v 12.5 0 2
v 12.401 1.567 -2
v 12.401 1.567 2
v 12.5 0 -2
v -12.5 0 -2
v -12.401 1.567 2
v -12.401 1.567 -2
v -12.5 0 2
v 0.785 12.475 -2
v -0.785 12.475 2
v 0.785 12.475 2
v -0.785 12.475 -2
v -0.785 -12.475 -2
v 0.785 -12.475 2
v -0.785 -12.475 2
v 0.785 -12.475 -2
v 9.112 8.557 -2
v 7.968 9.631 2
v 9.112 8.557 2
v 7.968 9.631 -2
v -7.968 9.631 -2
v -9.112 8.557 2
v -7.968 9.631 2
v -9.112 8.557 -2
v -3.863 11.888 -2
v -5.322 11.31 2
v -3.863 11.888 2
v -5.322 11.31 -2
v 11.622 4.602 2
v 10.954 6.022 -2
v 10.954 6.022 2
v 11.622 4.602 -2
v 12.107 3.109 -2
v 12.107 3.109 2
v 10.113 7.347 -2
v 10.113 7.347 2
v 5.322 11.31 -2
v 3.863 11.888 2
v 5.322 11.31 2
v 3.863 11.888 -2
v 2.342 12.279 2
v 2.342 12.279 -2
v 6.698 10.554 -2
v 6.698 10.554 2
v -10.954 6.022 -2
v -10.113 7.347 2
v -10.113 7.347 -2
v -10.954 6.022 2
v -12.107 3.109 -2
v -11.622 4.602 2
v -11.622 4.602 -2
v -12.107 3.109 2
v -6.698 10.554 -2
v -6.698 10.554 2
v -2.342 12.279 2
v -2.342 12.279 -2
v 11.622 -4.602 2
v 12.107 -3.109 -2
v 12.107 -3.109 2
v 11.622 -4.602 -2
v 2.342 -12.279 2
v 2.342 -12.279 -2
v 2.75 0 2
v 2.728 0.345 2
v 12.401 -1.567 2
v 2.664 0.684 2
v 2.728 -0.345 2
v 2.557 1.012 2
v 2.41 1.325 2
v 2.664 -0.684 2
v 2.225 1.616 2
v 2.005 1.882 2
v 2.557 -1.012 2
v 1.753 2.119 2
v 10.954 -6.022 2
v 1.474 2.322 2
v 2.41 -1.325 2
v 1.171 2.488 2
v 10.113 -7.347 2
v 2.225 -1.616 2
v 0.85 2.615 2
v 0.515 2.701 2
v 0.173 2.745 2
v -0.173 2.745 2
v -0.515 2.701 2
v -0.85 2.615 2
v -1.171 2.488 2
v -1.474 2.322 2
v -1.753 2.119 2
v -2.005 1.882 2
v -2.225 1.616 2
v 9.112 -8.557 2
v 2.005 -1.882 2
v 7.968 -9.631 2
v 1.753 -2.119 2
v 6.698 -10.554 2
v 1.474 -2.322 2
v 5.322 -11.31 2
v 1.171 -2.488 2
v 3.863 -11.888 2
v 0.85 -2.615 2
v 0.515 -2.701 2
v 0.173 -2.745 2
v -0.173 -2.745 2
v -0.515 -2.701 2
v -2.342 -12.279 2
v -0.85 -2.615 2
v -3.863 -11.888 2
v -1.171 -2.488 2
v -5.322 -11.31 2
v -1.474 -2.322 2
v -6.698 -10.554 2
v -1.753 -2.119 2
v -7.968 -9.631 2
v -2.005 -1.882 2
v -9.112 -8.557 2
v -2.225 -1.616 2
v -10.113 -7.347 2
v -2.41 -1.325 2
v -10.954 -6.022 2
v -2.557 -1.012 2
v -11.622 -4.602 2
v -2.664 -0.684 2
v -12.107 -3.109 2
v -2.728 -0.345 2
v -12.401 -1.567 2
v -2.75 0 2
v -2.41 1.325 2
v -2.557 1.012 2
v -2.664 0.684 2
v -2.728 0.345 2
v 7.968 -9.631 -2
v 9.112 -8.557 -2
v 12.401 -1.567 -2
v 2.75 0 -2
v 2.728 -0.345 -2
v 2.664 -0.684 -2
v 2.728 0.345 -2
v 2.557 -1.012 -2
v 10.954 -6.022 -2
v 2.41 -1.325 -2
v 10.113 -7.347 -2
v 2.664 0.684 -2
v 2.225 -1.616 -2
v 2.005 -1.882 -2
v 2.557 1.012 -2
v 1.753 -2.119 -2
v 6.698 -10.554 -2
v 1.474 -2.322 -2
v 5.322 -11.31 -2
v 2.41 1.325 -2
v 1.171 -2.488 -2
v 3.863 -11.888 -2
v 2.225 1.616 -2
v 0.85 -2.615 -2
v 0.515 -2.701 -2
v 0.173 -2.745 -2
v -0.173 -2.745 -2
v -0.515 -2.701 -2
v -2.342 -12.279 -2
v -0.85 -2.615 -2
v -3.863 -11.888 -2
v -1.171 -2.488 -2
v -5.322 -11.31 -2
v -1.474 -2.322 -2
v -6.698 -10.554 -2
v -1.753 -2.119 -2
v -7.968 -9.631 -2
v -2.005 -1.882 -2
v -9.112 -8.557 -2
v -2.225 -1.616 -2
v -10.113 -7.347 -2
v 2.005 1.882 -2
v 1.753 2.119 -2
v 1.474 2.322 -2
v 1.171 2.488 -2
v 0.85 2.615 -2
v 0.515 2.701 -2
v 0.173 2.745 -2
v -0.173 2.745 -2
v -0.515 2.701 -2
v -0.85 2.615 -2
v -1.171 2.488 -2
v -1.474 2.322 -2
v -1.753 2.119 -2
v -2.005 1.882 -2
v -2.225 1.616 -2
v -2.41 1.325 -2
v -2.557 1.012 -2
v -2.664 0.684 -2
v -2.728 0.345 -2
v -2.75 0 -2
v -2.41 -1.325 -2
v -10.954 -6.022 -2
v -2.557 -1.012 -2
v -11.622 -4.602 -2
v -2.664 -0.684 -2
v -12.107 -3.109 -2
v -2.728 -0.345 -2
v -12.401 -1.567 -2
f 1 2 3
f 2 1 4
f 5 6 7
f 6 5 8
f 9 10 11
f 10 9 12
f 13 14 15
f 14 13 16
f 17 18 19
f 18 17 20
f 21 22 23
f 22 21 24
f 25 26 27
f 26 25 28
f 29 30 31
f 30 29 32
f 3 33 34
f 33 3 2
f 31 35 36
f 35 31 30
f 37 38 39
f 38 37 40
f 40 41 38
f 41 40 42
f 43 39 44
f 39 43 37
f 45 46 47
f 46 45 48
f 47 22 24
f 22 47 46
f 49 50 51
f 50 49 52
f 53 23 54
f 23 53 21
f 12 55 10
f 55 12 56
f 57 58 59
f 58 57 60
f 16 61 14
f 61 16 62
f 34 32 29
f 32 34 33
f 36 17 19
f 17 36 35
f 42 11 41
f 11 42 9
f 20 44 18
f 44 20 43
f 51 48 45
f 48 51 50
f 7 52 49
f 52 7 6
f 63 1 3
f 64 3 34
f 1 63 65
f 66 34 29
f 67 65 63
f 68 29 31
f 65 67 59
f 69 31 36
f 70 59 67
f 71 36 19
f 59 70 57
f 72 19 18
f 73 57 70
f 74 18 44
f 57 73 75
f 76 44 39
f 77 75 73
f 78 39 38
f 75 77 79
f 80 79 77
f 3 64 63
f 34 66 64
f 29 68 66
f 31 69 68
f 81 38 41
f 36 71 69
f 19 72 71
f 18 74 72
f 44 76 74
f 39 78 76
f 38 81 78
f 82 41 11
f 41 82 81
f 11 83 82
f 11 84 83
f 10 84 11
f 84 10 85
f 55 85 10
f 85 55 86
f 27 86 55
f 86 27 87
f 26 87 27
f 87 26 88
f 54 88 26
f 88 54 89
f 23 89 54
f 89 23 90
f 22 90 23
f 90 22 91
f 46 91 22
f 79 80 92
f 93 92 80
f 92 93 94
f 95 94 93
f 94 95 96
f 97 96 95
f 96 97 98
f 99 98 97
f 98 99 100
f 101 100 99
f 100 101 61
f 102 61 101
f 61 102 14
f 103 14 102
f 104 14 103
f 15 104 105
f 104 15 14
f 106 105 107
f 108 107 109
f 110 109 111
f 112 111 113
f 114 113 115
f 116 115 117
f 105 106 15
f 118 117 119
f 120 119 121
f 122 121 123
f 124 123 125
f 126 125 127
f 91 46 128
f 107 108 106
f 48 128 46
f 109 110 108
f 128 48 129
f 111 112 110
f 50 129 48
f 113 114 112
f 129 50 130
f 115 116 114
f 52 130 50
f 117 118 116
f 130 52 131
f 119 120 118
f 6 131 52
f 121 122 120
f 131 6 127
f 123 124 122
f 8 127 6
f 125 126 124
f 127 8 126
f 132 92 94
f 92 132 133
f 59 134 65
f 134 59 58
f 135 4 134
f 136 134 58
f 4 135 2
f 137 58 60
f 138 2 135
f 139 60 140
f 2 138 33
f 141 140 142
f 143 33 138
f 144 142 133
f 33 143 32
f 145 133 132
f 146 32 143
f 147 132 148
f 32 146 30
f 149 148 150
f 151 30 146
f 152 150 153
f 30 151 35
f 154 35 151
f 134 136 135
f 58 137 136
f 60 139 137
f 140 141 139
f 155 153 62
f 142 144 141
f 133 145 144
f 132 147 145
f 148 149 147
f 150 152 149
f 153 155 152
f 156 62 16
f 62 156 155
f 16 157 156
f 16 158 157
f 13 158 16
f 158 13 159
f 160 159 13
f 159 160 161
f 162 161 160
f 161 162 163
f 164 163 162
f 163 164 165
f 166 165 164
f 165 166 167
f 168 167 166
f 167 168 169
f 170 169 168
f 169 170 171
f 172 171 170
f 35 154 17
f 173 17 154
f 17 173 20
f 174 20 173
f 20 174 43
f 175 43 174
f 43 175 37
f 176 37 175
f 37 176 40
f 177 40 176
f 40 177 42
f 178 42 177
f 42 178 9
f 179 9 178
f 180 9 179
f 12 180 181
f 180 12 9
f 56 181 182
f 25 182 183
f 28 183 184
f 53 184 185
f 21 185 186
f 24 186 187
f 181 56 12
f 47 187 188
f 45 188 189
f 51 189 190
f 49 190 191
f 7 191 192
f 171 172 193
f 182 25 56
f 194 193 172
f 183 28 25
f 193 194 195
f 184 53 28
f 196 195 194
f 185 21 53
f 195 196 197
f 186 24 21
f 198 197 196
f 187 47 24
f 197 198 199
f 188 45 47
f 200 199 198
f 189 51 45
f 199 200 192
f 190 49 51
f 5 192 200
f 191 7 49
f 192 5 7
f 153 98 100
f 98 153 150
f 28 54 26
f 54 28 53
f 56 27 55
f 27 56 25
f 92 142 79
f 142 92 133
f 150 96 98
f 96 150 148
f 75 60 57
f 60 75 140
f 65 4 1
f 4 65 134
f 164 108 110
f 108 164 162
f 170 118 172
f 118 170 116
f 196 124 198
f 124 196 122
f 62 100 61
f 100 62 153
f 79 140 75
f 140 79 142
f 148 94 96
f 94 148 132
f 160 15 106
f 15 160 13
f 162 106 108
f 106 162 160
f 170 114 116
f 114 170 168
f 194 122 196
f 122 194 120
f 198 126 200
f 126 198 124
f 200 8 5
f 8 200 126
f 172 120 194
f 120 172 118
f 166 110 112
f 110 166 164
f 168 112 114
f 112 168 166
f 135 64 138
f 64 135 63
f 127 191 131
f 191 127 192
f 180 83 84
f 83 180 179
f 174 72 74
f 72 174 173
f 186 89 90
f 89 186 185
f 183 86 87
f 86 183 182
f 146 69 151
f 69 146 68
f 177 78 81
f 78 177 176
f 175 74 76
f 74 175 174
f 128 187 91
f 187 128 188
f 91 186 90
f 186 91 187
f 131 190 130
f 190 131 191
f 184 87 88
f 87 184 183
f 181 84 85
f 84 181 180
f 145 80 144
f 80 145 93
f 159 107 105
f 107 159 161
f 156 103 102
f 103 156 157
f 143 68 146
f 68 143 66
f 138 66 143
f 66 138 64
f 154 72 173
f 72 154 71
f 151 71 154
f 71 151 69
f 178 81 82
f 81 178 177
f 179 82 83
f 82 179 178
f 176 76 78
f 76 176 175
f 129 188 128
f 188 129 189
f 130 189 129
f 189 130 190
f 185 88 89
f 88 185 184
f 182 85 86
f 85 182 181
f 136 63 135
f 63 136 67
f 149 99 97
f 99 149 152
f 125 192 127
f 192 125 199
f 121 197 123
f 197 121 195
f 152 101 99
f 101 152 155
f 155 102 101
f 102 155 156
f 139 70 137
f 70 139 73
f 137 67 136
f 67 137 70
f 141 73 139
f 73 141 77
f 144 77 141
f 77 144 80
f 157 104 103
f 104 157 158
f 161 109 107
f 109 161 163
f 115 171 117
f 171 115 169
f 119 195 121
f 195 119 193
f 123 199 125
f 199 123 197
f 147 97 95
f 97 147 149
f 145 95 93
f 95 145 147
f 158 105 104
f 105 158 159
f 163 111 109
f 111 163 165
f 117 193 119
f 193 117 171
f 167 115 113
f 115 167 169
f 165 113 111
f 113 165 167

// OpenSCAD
$fn = 50;


difference() {
	union() {
		translate(v = [0, 0, -2.0000000000]) {
			cylinder(h = 4, r = 12.5000000000);
		}
	}
	union() {
		translate(v = [0, 0, -100.0000000000]) {
			cylinder(h = 200, r = 2.7500000000);
		}
	}
}
